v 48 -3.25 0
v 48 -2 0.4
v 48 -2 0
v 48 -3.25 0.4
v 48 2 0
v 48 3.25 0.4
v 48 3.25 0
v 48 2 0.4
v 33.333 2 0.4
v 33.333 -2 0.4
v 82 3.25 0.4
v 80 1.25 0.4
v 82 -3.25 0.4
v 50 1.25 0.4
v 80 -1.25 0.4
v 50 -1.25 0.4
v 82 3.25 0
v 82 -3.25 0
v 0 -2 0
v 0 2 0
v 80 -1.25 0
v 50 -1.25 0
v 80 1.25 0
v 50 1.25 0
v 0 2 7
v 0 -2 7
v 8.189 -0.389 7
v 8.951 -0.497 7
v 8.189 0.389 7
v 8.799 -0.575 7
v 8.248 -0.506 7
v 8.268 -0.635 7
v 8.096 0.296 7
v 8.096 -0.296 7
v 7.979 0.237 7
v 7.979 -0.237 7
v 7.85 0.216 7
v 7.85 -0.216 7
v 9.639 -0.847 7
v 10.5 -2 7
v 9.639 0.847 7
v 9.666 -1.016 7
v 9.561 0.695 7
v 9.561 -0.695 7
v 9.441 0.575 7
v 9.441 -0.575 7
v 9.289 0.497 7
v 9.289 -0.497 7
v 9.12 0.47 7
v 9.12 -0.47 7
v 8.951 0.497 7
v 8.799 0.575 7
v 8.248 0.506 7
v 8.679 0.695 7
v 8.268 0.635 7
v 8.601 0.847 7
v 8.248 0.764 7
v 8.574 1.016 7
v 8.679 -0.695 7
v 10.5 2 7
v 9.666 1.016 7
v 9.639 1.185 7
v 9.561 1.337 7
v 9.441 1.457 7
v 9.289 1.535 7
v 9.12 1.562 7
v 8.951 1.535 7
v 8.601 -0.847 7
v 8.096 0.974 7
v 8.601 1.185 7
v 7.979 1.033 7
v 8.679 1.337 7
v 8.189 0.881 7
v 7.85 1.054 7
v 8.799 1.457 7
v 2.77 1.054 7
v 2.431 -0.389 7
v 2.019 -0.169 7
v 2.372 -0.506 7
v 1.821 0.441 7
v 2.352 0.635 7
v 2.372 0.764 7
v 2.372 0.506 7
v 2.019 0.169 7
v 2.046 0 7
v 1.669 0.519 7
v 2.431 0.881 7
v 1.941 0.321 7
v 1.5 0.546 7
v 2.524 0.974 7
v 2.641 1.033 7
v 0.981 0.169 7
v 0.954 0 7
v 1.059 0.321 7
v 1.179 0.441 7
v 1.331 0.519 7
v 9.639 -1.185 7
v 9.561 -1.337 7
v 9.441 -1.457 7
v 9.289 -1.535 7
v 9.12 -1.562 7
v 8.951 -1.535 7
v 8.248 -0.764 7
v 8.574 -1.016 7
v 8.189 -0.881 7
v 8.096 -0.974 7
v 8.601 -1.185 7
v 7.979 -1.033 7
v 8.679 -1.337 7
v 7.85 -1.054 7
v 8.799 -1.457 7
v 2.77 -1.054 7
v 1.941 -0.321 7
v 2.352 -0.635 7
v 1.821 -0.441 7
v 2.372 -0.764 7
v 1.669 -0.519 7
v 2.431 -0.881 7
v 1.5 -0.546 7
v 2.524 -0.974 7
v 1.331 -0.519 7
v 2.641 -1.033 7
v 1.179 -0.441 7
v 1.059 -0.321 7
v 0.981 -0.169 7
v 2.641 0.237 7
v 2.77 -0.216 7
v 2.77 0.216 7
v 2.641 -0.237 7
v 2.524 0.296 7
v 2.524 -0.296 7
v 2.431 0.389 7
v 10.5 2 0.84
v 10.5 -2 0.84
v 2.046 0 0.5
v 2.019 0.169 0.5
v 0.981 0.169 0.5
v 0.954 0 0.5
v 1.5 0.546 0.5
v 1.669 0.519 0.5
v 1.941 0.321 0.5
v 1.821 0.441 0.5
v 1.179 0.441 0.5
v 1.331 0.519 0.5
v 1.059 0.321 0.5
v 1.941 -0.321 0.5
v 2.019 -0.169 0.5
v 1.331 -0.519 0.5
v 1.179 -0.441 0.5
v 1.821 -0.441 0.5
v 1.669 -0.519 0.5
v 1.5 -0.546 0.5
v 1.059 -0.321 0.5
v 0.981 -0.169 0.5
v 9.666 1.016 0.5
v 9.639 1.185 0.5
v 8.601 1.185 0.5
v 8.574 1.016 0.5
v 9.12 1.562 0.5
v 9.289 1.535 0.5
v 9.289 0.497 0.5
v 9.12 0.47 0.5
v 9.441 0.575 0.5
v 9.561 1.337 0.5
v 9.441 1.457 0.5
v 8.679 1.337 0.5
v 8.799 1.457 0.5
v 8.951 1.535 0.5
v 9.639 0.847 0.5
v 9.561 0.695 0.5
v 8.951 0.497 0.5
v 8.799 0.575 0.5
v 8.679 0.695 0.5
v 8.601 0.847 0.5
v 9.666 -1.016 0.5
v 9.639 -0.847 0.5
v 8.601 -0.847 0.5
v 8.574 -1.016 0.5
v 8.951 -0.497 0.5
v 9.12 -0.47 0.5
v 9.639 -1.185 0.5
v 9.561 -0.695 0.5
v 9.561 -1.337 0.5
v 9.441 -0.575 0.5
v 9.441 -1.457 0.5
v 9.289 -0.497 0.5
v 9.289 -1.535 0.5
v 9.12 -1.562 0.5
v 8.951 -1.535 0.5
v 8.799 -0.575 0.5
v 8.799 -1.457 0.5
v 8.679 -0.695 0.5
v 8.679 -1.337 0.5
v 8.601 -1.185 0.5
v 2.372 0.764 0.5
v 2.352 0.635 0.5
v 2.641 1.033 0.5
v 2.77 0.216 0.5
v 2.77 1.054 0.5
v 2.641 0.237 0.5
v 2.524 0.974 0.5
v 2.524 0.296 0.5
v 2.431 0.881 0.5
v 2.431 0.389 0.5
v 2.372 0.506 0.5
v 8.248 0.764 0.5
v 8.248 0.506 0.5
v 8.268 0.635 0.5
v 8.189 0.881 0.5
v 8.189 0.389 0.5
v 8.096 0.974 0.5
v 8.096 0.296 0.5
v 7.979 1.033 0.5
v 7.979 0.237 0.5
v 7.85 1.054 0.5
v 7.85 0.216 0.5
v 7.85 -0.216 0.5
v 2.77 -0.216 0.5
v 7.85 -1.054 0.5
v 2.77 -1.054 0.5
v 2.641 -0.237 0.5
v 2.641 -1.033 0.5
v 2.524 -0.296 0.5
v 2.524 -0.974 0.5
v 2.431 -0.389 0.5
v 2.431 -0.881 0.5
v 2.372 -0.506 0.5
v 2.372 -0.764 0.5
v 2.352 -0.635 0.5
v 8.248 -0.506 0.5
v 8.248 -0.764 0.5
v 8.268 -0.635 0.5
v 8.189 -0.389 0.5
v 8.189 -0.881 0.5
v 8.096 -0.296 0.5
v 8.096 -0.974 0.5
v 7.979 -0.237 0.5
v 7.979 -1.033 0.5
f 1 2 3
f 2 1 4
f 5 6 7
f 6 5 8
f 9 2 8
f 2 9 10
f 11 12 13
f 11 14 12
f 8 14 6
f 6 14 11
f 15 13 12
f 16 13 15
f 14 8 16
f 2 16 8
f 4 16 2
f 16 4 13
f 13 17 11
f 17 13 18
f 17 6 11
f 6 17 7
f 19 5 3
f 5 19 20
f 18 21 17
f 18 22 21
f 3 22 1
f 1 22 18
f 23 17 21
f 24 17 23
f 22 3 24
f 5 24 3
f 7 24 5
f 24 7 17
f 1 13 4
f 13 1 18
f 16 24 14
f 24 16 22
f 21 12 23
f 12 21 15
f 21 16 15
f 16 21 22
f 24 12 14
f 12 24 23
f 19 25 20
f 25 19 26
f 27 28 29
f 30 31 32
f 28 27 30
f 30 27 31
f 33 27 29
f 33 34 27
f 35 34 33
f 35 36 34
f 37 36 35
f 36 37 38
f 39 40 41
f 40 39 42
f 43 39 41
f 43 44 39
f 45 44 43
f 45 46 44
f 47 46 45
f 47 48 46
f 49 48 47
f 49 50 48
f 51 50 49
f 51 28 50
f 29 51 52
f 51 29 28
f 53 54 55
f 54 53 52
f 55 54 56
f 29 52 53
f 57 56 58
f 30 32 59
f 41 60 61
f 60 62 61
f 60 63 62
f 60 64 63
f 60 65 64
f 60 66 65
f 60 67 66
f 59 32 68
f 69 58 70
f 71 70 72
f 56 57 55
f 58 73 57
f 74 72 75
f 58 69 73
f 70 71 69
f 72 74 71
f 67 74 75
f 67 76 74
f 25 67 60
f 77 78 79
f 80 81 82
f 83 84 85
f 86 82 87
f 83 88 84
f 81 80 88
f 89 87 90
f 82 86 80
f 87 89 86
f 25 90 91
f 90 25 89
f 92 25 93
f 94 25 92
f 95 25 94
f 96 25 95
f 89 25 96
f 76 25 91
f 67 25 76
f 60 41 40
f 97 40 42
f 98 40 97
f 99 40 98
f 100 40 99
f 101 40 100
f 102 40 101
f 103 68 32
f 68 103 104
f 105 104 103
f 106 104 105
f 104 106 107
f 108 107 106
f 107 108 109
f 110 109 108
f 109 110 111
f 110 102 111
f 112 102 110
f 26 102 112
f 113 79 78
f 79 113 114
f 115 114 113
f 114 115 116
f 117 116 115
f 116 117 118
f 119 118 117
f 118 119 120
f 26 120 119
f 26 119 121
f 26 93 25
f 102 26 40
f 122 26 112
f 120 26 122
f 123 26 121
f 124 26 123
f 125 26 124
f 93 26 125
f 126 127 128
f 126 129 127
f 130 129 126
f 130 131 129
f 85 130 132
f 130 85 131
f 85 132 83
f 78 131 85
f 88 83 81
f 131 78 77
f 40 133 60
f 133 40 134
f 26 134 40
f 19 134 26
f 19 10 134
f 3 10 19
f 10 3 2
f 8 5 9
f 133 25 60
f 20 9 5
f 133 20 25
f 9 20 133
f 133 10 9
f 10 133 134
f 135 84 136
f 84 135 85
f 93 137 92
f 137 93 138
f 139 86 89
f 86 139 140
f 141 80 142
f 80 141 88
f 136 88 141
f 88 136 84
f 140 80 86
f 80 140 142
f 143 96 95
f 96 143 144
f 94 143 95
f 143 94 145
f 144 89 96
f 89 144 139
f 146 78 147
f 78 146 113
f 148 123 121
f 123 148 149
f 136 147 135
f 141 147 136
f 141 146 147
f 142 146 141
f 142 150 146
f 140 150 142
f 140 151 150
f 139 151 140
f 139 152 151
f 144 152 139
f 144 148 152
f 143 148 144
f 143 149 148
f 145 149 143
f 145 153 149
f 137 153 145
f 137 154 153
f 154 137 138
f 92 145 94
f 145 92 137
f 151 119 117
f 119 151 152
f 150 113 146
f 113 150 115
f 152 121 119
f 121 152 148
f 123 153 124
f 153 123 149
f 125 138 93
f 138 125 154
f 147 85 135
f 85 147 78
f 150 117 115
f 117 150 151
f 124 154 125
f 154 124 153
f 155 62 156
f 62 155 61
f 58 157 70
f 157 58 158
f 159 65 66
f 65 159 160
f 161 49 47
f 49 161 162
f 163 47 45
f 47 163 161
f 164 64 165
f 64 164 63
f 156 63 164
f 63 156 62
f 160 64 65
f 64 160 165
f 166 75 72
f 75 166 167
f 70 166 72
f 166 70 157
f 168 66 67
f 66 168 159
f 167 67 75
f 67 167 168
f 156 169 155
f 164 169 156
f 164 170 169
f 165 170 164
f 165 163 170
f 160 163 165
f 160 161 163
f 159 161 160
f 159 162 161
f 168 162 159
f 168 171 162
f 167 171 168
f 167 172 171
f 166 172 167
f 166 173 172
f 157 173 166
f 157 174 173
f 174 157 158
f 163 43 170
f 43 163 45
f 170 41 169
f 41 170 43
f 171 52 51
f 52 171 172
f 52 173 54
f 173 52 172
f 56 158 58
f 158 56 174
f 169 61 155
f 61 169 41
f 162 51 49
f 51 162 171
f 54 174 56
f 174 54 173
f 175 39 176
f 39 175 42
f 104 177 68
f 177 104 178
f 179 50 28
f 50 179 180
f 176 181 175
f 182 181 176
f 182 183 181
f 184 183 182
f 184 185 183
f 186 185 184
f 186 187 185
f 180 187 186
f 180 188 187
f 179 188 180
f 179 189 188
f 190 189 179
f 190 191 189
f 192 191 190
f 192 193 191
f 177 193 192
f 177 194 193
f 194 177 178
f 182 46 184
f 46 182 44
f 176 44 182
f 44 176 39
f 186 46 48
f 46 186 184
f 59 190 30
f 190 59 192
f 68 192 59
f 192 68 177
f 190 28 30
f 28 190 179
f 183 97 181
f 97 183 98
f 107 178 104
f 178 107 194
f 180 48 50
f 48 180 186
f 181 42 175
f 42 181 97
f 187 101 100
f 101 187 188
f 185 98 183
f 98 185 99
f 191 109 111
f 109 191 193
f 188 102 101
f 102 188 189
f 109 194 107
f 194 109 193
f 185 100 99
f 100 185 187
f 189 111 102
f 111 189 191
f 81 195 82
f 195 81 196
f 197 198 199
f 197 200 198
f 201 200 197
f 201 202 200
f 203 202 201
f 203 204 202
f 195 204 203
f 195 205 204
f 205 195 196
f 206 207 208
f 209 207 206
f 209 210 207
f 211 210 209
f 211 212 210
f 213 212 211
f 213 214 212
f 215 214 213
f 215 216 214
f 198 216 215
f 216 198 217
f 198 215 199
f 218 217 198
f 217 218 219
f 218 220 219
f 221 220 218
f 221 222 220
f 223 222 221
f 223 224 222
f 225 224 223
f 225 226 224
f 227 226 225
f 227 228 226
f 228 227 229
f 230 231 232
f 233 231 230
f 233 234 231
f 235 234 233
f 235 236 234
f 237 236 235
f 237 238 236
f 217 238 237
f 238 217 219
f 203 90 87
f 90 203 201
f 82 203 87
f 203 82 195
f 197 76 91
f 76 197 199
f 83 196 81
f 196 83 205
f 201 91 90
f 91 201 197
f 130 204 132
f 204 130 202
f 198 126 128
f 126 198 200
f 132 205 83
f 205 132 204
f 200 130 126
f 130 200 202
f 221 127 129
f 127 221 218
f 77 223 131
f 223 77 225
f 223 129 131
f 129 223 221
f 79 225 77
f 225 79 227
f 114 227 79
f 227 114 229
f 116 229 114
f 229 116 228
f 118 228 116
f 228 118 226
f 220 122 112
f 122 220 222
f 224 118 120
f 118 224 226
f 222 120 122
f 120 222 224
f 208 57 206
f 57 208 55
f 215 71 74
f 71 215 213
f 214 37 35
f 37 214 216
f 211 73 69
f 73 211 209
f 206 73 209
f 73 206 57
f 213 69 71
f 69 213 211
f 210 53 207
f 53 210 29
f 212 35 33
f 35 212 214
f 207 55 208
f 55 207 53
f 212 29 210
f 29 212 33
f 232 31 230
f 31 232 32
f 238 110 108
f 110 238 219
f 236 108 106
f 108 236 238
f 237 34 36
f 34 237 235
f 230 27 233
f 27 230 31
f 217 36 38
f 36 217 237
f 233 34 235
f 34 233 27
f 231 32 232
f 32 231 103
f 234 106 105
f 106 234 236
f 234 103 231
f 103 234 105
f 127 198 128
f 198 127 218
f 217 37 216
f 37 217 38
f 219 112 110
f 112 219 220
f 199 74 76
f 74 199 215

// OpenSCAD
$fn=20;

isx = 1.5;       // Inital Spacing X

a_dia_tol = 0.1;  // Alignment Hole Tolerance
p_dia_tol = 0.05; // Alignment Hole Tolerance

align_pin_dia = 0.991+a_dia_tol; // Alignment Pin Diamenter
probe_pin_dia = 0.787+p_dia_tol; // Probe Pin Diameter

/* Probe Clip Dimention */
boxx = 10.5;
boxy = 4;
boxh = 7;
his = 0.5; // Alignment/Probe hole offset height spacing

/* Probe Pair Spacing */
pps = 1.270;// mm probe pair spacing
pys = 0.635; // Probe spacing from x axis along y axis

/* Align Hole Calc */
ap1xs   = isx;        // Align pin 1 x spacing
ap2a3xs = ap1xs+pps*6; // Align pin 2&3 x spacing
ap2a3ys = 1.016;

/* Probe Shield */
// http://www.tag-connect.com/Materials/TC2030-IDC.pdf
pss = ap1xs + pps - (probe_pin_dia/2);
psx = pps*2 + probe_pin_dia;
psy = 1.016*2;

/* Probe Pair Space Calc */
pp1s = ap1xs + pps*1; // mm spacing 
pp2s = ap1xs + pps*2; // mm spacing 
pp3s = ap1xs + pps*3; // mm spacing 
pp4s = ap1xs + pps*4; // mm spacing 
pp5s = ap1xs + pps*5; // mm spacing 
probe_pit_y = pys*2 + probe_pin_dia; // 

/* loop */
loop_length = 50;
loop_height = 0.4;
loop_width = boxy;
loop_hole_w = 2.5; // hole width
loop_hole_l = 30;
loop_hole_s = 2;

loop_loy = loop_hole_w + 2*loop_hole_s;

/* 3D Model */
difference() {
translate([0  , -boxy/2  , 0])
  {    
    union(){
        /* Main Plug */
        cube([boxx,boxy,boxh]);

        /* Loop */
        // Strain Relief
        translate([boxx, (boxy-loop_width)/2  , loop_height])
            polyhedron(
                [
                  [  0,                       0,     0 ],  //0
                  [  (loop_length*2/3)-boxx,  0,     0 ],  //1
                  [  (loop_length*2/3)-boxx,  boxy,  0 ],  //2
                  [  0,                       boxy,  0 ],  //3
                  [  0,                       0,     loop_height*1.1 ],  //4
                  [  (loop_length*2/3)-boxx,  0,     0 ],  //5
                  [  (loop_length*2/3)-boxx,  boxy,  0 ],  //6
                  [  0,                       boxy,  loop_height*1.1 ]   //7
                ]
                ,
                [
                  [0,1,2,3],  // bottom
                  [4,5,1,0],  // front
                  [7,6,5,4],  // top
                  [5,6,2,1],  // right
                  [6,7,3,2],  // back
                  [7,4,0,3] // left
                  ]
                );
        // Lanyard
        translate([0, (boxy-loop_width)/2  , 0])
            cube([loop_length,loop_width,loop_height]); // lanyard
        
        // Loop
        translate([loop_length-loop_hole_s, (boxy-loop_loy)/2  , 0])
        difference() {
            cube([loop_hole_l+loop_hole_s*2,loop_loy,loop_height]); // lanyard
            #translate([loop_hole_s, ((loop_loy-loop_hole_w)/2)  , -loop_height/2])
                cube([loop_hole_l,loop_hole_w,loop_height*2]); // hole
        }
    }
  }
/* Align Hole */
#translate([ap1xs   , 0         , his])
    cylinder(r=align_pin_dia/2, h=boxh);
#translate([ap2a3xs , +ap2a3ys  , his])
    cylinder(r=align_pin_dia/2, h=boxh);
#translate([ap2a3xs , -ap2a3ys  , his])
    cylinder(r=align_pin_dia/2, h=boxh);

/* Probe Pair 1 */
#translate([pp1s, +pys  , his])
    cylinder(r=probe_pin_dia/2, h=boxh);
#translate([pp1s, -pys  , his])
    cylinder(r=probe_pin_dia/2, h=boxh);
/* Probe Pair 2 */
#translate([pp2s, +pys  , his])
    cylinder(r=probe_pin_dia/2, h=boxh);
#translate([pp2s, -pys  , his])
    cylinder(r=probe_pin_dia/2, h=boxh);
/* Probe Pair 3 */
#translate([pp3s, +pys  , his])
    cylinder(r=probe_pin_dia/2, h=boxh);
#translate([pp3s, -pys  , his])
    cylinder(r=probe_pin_dia/2, h=boxh);
/* Probe Pair 4 */
#translate([pp4s, +pys  , his])
    cylinder(r=probe_pin_dia/2, h=boxh);
#translate([pp4s, -pys  , his])
    cylinder(r=probe_pin_dia/2, h=boxh);
/* Probe Pair 5 */
#translate([pp5s, +pys  , his])
    cylinder(r=probe_pin_dia/2, h=boxh);
#translate([pp5s, -pys  , his])
    cylinder(r=probe_pin_dia/2, h=boxh);
/* Probe Pit */
#translate([pp1s  , -probe_pit_y/2  , his])
    cube([pps*4,probe_pit_y,boxh]);
}
